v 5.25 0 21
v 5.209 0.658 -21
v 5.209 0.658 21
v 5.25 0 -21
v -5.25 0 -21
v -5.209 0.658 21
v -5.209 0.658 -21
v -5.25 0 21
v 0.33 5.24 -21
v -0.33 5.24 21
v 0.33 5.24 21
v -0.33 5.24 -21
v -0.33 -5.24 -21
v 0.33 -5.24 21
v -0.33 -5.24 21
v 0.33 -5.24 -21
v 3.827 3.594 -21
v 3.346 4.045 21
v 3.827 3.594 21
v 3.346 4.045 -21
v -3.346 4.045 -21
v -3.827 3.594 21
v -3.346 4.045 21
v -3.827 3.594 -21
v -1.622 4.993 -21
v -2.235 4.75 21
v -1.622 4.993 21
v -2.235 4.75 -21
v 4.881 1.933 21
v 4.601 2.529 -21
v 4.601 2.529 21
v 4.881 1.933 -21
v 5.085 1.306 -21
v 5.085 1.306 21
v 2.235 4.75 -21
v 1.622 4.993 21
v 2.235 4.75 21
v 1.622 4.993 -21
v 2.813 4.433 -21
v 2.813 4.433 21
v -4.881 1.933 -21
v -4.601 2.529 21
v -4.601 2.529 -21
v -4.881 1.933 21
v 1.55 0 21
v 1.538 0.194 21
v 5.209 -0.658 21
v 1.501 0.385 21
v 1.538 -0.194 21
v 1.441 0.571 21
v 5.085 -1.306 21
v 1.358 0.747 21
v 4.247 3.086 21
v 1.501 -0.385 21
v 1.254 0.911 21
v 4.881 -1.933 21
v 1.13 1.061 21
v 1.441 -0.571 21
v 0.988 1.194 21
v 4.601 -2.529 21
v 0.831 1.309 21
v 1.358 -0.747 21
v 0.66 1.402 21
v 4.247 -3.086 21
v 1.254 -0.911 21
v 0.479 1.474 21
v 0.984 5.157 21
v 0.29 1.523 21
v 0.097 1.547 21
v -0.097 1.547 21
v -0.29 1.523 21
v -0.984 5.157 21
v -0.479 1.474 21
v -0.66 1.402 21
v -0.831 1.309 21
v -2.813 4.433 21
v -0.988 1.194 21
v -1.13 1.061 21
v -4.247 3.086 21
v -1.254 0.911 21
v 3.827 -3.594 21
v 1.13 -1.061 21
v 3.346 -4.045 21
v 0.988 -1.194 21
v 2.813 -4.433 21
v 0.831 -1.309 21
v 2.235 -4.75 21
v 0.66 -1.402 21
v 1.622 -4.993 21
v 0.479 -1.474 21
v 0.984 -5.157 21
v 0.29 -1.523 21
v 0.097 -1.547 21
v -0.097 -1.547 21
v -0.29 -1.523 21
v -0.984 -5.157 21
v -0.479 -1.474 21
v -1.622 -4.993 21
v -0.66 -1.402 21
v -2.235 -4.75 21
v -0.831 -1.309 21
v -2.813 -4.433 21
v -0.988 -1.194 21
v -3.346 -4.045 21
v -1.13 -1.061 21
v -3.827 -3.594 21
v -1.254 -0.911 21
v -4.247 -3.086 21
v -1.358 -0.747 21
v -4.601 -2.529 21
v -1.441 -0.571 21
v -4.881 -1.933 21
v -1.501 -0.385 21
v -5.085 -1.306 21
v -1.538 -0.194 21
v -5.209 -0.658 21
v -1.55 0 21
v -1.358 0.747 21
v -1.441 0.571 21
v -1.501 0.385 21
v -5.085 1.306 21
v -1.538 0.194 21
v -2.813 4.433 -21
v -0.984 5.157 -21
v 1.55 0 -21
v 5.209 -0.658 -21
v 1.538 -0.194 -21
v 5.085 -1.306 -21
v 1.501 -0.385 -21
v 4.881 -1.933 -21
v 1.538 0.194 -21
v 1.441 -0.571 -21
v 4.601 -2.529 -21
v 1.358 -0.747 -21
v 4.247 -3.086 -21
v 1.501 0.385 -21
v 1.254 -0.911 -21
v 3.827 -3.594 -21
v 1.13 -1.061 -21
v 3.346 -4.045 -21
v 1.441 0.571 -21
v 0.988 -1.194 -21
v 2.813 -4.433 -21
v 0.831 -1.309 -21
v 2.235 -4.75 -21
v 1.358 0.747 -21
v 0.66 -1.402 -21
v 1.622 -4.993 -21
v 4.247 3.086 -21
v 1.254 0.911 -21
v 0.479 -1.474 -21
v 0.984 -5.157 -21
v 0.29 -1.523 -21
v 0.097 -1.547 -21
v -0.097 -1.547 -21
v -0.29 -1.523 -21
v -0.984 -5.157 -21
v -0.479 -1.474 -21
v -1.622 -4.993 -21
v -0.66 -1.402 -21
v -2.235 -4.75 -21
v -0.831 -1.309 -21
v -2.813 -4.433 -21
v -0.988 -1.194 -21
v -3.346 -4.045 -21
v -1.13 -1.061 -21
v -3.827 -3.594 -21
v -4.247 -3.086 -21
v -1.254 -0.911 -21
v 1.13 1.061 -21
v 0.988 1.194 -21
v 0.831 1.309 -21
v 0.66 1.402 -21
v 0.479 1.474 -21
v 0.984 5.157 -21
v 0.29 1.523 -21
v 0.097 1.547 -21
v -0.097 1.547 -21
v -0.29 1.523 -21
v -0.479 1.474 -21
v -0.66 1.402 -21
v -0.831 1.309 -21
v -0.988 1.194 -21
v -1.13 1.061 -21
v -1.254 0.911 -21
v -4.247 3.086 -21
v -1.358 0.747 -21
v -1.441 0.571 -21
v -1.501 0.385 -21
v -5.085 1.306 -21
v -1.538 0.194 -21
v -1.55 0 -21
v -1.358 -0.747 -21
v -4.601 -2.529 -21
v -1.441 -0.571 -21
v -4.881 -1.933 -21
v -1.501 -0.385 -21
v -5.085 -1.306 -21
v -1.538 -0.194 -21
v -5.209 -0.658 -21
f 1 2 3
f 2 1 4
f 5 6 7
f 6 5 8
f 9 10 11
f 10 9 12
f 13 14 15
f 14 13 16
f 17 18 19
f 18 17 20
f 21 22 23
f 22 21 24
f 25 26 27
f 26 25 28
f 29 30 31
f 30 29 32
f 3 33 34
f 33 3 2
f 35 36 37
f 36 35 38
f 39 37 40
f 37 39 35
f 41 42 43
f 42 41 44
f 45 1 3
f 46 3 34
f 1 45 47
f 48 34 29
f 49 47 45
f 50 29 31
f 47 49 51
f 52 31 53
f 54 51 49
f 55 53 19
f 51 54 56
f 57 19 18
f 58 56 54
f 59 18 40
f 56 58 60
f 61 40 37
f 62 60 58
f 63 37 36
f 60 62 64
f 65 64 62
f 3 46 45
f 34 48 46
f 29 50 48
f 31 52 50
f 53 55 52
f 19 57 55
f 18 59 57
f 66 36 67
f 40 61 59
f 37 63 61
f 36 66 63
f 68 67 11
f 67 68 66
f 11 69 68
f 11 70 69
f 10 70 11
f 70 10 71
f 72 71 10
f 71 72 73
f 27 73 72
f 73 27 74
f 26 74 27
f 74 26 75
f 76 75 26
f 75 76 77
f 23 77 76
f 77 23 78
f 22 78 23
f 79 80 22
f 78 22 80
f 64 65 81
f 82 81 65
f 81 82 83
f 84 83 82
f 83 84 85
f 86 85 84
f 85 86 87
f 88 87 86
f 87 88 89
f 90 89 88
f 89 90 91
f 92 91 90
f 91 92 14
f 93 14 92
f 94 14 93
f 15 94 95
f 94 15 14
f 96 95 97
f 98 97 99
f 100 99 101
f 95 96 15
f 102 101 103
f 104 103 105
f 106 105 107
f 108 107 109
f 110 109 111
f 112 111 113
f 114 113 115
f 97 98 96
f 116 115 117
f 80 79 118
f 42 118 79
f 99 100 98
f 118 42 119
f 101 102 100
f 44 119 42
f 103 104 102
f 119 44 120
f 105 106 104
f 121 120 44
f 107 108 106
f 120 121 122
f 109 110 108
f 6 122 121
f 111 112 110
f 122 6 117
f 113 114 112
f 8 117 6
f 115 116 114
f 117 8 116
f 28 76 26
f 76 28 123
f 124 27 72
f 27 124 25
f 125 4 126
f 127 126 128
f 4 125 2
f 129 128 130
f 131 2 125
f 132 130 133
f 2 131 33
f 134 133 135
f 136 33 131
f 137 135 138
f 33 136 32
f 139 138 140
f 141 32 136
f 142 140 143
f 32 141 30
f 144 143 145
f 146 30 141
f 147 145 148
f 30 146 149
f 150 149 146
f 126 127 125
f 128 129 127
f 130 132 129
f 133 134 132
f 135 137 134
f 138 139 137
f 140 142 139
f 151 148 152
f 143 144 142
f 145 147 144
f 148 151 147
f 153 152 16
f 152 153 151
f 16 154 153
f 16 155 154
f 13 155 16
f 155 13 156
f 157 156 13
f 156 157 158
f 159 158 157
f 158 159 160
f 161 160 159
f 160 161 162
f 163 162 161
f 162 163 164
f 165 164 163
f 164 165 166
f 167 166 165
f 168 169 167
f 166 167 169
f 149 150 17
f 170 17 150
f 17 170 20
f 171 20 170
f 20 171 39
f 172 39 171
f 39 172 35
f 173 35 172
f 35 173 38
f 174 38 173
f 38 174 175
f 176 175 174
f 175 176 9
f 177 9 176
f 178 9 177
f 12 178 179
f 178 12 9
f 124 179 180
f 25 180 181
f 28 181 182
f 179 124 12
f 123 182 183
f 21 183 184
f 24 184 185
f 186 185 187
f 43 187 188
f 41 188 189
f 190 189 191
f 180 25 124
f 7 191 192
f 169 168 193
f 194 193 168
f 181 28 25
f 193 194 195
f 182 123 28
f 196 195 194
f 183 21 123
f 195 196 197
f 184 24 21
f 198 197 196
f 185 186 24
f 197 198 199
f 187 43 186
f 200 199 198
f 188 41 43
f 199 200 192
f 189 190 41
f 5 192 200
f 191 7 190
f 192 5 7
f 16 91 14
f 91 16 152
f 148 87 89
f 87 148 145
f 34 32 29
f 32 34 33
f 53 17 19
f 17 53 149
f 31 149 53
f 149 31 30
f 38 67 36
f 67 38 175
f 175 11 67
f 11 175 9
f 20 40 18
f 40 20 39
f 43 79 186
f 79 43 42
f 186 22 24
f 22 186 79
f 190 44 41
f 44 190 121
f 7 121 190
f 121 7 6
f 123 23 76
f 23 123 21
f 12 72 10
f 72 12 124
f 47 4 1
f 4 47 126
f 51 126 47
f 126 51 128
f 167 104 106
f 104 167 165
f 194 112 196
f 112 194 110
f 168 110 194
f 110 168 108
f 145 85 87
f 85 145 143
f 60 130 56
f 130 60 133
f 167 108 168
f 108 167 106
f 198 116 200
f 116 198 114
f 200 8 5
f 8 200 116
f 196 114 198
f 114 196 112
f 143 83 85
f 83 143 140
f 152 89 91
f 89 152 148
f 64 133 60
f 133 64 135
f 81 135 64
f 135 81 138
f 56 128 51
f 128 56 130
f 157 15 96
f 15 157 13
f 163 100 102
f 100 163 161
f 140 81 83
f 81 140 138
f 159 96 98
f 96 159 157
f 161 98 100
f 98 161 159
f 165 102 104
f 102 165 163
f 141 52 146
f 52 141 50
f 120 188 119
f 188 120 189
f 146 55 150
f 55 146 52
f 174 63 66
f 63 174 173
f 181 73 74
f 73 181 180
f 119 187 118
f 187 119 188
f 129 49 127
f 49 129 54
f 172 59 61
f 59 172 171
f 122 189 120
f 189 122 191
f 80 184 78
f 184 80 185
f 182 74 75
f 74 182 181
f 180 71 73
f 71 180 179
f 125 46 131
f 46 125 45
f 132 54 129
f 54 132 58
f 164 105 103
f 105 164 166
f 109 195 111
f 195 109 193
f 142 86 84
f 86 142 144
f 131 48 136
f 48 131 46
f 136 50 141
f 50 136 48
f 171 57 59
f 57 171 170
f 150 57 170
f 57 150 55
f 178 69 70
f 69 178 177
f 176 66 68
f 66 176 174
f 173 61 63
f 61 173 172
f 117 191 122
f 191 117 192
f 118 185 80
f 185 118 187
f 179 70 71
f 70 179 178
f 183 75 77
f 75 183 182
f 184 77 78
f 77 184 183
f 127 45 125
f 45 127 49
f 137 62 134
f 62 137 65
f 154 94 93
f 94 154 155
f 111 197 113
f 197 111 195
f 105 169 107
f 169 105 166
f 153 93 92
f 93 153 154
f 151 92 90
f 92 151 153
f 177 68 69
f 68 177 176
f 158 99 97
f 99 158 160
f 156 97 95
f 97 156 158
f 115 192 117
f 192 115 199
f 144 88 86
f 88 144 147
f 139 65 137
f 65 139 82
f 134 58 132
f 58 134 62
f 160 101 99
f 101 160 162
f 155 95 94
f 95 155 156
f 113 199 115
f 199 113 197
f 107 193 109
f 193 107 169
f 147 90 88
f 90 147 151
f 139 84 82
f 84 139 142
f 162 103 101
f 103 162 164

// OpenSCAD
$fn = 50;


difference() {
	union() {
		translate(v = [0, 0, -21.0000000000]) {
			cylinder(h = 42, r = 5.2500000000);
		}
	}
	union() {
		translate(v = [0, 0, -100.0000000000]) {
			cylinder(h = 200, r = 1.5500000000);
		}
	}
}
